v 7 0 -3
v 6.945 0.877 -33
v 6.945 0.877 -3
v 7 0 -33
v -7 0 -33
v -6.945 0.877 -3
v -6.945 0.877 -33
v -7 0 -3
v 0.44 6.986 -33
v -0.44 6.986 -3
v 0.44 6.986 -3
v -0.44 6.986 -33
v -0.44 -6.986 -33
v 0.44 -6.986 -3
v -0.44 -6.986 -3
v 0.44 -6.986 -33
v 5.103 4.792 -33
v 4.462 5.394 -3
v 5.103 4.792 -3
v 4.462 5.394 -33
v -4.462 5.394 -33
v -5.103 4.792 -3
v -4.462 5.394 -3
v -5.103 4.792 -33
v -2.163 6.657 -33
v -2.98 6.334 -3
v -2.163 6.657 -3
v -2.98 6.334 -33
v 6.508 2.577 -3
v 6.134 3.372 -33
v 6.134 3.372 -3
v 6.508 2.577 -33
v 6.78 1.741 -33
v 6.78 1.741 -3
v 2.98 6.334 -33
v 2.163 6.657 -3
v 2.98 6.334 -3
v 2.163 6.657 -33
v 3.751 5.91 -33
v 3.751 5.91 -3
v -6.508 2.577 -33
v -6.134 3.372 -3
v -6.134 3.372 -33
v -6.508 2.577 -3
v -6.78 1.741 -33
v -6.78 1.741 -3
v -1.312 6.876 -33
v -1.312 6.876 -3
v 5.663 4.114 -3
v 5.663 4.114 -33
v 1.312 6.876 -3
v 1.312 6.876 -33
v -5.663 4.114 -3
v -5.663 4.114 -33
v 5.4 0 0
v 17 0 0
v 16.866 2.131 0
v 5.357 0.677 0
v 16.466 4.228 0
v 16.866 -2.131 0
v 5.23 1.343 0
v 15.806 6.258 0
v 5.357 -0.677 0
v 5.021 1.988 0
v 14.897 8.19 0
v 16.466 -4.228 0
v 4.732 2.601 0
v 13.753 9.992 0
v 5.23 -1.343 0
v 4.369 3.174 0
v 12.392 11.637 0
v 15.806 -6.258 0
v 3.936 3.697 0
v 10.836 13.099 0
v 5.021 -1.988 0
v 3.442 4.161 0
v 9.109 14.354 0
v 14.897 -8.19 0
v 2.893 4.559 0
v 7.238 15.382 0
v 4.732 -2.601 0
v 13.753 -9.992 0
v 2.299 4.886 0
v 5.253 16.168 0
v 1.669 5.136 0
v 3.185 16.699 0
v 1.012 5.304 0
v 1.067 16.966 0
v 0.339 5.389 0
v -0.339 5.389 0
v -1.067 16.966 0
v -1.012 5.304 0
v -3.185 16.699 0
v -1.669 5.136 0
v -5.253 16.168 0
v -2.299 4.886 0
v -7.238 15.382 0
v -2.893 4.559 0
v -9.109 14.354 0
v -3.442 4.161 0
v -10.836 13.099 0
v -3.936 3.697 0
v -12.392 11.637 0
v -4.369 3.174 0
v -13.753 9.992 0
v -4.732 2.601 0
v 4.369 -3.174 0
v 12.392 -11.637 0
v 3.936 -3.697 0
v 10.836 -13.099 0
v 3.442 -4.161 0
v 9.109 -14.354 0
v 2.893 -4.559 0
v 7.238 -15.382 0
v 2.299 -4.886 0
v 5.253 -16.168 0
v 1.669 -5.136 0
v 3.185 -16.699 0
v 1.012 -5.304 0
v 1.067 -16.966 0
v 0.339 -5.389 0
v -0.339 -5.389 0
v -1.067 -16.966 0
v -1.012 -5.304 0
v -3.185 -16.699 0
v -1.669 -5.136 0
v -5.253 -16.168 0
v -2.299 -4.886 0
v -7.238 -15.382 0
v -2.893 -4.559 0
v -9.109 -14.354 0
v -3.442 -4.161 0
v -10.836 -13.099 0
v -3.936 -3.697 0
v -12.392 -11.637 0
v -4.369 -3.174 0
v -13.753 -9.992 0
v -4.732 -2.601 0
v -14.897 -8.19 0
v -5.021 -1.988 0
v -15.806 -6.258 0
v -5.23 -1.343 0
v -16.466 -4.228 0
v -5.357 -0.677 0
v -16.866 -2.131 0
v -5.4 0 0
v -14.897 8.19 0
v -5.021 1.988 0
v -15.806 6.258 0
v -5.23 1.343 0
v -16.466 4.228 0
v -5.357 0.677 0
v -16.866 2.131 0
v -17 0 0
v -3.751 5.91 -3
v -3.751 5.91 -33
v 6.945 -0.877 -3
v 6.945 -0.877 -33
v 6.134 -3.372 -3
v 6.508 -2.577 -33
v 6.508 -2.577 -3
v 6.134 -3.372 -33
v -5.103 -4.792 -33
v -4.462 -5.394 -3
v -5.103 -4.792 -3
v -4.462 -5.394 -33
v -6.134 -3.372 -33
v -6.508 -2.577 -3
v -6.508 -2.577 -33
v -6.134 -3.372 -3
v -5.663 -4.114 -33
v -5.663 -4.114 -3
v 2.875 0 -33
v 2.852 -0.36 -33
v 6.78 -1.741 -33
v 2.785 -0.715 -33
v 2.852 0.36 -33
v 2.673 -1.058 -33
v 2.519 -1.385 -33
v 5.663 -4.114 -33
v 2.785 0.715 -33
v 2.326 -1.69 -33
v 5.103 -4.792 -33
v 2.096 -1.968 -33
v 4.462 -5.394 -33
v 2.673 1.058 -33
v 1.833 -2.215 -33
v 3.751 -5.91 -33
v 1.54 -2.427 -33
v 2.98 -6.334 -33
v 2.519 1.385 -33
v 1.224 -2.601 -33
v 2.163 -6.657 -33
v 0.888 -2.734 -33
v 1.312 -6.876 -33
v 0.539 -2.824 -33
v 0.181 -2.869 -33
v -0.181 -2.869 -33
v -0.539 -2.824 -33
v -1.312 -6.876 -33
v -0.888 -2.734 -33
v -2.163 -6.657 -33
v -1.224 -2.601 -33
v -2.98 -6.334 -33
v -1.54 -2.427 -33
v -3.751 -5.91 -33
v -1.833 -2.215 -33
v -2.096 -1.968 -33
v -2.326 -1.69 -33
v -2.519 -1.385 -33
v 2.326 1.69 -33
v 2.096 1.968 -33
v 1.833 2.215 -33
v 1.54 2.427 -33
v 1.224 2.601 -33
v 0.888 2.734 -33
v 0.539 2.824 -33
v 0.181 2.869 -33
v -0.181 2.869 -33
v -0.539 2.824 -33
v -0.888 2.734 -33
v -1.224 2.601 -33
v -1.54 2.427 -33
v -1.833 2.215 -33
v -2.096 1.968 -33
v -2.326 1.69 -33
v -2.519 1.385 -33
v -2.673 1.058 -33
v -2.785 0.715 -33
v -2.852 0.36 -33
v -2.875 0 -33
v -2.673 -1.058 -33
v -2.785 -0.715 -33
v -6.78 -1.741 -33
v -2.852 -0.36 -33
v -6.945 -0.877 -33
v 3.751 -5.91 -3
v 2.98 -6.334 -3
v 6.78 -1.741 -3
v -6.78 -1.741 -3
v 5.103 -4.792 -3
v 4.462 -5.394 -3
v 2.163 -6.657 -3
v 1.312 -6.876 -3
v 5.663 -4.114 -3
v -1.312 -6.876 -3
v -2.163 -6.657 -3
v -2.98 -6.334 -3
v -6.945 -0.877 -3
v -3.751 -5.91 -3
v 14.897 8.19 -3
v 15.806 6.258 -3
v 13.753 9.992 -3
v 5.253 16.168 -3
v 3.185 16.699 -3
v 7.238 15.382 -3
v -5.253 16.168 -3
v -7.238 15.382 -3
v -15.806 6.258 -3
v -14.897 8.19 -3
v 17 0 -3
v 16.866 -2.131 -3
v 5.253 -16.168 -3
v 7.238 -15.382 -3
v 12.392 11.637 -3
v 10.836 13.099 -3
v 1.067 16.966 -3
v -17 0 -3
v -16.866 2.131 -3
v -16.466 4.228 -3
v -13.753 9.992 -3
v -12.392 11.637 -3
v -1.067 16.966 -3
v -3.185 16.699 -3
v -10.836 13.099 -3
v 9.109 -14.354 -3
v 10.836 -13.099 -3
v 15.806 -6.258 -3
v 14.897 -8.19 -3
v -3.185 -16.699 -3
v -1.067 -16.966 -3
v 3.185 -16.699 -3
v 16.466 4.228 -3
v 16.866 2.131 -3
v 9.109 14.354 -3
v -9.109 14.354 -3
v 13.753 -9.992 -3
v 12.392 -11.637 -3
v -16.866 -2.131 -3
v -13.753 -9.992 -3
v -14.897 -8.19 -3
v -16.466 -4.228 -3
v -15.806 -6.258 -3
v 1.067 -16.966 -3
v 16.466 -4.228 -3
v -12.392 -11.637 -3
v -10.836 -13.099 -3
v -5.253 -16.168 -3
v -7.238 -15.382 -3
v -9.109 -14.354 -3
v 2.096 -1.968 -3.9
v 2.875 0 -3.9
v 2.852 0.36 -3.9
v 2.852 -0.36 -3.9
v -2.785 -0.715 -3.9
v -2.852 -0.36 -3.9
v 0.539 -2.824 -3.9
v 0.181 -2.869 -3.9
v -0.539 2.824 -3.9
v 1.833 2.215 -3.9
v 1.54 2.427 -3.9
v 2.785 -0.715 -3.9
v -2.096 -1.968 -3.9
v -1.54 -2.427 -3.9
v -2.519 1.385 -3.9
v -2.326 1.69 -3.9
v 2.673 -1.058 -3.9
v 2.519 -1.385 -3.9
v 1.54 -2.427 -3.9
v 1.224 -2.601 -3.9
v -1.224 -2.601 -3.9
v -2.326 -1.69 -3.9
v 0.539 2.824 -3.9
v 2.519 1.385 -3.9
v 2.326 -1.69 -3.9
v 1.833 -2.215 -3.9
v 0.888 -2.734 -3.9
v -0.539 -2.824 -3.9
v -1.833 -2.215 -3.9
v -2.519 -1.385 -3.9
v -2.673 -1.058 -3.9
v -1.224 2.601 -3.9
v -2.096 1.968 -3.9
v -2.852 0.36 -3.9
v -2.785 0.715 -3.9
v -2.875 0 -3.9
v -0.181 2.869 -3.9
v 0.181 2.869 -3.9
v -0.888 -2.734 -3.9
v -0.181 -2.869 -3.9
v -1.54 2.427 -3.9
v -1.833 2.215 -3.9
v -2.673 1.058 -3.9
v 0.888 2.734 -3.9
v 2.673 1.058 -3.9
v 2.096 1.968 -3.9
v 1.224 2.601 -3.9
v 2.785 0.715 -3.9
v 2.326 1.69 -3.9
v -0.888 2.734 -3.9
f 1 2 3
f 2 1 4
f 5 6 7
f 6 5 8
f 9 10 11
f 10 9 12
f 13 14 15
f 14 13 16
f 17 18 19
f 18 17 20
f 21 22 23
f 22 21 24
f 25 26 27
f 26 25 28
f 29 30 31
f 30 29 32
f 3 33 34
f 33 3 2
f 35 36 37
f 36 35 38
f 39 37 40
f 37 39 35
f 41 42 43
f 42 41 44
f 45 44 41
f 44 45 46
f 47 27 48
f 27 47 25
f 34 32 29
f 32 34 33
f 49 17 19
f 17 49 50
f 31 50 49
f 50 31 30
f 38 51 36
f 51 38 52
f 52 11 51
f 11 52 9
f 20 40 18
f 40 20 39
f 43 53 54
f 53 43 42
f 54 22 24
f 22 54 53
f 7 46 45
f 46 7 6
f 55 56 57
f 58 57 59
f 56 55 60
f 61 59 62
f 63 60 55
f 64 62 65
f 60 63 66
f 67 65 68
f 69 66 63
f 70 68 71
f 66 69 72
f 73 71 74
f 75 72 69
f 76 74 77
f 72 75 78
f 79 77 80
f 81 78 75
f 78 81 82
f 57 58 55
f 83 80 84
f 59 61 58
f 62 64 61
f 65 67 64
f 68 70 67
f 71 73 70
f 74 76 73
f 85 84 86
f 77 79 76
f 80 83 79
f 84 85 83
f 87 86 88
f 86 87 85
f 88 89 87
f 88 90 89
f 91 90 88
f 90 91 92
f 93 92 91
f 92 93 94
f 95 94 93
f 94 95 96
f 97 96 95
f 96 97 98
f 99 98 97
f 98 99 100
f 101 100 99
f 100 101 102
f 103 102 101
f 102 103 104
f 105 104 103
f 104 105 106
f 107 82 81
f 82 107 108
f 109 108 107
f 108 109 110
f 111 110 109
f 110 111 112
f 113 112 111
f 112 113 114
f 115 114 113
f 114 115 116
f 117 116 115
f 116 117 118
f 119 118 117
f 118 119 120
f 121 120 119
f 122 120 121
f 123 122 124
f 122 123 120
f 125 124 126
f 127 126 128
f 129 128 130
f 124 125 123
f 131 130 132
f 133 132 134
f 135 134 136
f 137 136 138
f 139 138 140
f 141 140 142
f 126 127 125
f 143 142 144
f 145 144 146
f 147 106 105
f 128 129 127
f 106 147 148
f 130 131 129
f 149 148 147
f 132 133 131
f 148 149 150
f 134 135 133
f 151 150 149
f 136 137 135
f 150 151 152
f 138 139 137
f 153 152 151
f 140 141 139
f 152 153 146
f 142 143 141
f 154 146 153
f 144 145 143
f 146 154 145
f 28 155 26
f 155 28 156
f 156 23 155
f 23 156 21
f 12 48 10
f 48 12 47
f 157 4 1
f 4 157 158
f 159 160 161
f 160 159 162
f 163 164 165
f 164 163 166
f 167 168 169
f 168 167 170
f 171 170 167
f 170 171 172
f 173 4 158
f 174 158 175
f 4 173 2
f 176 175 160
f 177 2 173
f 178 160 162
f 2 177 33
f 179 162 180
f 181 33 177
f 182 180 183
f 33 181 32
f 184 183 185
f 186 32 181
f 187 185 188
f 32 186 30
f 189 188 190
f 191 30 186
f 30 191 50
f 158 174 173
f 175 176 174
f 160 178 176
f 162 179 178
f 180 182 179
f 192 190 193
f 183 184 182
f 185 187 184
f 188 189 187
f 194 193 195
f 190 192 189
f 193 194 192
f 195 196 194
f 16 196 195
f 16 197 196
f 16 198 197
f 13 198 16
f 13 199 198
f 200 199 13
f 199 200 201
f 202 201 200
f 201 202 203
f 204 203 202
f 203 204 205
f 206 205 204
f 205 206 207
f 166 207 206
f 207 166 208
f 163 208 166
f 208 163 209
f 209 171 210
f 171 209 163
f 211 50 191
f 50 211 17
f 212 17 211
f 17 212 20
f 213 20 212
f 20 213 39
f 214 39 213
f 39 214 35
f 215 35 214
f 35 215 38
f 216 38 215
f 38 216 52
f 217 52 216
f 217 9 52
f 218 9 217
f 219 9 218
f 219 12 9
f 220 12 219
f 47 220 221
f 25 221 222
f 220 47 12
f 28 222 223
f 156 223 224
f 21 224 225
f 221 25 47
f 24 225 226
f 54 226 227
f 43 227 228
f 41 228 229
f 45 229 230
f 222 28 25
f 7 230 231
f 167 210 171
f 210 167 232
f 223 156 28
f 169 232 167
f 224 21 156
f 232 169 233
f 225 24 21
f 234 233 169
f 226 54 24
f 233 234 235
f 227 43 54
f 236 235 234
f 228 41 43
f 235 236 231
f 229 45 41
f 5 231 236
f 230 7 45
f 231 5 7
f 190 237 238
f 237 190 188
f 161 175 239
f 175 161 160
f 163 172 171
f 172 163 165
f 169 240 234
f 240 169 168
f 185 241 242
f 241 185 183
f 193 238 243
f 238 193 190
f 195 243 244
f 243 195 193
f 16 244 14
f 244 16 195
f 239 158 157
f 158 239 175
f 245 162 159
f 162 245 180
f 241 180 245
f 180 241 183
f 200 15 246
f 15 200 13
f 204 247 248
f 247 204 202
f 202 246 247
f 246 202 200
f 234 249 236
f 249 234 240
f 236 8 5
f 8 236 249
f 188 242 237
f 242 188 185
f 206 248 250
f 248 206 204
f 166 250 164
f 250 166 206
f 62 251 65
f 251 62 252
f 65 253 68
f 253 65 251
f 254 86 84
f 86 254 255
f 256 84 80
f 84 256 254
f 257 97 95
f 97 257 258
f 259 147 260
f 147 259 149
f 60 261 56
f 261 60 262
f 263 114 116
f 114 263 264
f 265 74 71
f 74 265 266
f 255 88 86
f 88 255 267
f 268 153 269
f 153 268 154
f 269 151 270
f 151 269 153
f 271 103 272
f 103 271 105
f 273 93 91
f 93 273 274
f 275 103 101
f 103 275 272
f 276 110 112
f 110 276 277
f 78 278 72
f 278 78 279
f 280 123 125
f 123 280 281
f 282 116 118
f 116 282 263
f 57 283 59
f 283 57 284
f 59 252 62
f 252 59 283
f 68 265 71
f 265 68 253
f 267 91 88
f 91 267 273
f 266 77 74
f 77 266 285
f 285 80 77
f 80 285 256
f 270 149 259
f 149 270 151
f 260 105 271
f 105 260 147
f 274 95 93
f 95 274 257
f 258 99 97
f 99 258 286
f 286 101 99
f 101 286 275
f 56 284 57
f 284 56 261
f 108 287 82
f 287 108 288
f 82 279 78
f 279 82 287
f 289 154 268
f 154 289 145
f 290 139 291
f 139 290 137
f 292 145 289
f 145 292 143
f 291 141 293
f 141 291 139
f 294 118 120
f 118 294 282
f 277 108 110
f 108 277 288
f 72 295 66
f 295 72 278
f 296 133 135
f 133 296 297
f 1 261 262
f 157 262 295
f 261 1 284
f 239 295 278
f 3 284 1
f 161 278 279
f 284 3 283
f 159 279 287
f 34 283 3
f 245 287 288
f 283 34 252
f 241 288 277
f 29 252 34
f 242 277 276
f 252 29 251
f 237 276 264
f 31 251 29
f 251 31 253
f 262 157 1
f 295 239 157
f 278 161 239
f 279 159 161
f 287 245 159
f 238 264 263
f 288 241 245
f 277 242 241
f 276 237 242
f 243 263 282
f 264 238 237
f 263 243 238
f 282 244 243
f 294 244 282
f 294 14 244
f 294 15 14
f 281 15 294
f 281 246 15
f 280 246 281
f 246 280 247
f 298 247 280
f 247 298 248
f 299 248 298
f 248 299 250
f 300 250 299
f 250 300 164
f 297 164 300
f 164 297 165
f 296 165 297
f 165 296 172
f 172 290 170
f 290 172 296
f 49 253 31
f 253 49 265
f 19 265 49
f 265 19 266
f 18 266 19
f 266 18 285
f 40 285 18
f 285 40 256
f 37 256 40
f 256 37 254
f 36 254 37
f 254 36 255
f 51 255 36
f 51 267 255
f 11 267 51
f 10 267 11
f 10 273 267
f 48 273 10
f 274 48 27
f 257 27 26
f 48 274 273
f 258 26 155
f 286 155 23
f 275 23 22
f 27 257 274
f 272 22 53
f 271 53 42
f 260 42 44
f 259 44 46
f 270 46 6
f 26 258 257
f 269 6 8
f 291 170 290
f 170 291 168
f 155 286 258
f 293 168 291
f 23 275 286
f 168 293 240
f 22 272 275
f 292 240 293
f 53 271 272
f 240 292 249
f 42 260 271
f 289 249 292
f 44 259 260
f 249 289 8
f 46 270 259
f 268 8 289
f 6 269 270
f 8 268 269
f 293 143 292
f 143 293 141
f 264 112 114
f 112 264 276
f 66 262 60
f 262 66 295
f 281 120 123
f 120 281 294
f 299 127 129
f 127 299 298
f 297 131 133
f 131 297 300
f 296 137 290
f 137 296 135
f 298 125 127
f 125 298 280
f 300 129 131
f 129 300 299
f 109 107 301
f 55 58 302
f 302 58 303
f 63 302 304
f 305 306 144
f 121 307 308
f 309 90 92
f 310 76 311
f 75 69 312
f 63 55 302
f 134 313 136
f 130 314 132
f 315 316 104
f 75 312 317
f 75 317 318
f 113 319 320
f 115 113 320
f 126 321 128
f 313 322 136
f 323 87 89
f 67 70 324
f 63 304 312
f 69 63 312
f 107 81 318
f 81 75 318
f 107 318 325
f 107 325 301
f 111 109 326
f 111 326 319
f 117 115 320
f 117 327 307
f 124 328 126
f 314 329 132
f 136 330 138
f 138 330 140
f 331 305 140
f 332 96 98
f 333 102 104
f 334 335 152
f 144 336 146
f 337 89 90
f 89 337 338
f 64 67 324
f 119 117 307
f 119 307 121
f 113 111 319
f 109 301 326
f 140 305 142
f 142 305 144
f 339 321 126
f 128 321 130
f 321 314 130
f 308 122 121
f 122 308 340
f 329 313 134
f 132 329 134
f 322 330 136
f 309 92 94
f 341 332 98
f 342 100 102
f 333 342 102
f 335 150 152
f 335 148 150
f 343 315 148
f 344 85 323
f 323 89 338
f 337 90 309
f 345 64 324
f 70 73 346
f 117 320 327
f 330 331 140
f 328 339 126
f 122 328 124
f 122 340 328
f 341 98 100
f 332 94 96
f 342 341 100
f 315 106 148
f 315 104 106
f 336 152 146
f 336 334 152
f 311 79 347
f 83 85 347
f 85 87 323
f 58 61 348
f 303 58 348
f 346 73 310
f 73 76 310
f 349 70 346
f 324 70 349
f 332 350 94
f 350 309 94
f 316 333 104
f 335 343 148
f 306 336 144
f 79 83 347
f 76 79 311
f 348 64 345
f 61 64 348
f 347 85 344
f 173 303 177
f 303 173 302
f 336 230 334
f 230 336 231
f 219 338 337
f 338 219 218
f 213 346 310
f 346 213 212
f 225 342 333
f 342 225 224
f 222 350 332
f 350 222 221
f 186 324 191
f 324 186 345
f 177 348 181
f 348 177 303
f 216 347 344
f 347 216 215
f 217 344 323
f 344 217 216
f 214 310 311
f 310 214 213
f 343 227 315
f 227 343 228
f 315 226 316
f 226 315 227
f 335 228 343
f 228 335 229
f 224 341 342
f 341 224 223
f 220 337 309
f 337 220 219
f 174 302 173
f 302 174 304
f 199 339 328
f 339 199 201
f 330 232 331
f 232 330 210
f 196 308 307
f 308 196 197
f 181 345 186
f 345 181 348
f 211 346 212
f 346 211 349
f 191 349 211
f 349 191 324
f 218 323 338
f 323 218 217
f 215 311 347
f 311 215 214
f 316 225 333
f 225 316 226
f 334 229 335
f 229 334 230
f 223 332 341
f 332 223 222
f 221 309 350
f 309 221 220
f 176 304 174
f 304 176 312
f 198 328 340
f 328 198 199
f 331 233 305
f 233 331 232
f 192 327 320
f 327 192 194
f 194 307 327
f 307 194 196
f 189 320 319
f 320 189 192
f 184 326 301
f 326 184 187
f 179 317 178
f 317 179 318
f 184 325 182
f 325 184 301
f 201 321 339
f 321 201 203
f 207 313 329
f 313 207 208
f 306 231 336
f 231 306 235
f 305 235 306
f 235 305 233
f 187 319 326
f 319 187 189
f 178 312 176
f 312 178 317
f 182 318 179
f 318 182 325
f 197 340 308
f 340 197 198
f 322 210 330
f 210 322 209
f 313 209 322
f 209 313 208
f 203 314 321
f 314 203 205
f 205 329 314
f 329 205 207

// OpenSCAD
$fn = 50;


difference() {
	union() {
		translate(v = [0, 0, -33.0000000000]) {
			cylinder(h = 33, r = 7.0000000000);
		}
		translate(v = [0, 0, -3.0000000000]) {
			cylinder(h = 3, r = 17.0000000000);
		}
	}
	union() {
		translate(v = [0, 0, 0]) {
			rotate(a = [0, 0, 0]) {
				difference() {
					union() {
						#translate(v = [0, 0, -33.0000000000]) {
							cylinder(h = 33, r = 2.6000000000);
						}
						#translate(v = [0, 0, -3.9000000000]) {
							cylinder(h = 3.9000000000, r = 7.0000000000, r1 = 2.8750000000, r2 = 5.4000000000);
						}
						#translate(v = [0, 0, -33.0000000000]) {
							cylinder(h = 33, r = 2.8750000000);
						}
						#translate(v = [0, 0, -33.0000000000]) {
							cylinder(h = 33, r = 2.6000000000);
						}
					}
					union();
				}
			}
		}
	}
}
